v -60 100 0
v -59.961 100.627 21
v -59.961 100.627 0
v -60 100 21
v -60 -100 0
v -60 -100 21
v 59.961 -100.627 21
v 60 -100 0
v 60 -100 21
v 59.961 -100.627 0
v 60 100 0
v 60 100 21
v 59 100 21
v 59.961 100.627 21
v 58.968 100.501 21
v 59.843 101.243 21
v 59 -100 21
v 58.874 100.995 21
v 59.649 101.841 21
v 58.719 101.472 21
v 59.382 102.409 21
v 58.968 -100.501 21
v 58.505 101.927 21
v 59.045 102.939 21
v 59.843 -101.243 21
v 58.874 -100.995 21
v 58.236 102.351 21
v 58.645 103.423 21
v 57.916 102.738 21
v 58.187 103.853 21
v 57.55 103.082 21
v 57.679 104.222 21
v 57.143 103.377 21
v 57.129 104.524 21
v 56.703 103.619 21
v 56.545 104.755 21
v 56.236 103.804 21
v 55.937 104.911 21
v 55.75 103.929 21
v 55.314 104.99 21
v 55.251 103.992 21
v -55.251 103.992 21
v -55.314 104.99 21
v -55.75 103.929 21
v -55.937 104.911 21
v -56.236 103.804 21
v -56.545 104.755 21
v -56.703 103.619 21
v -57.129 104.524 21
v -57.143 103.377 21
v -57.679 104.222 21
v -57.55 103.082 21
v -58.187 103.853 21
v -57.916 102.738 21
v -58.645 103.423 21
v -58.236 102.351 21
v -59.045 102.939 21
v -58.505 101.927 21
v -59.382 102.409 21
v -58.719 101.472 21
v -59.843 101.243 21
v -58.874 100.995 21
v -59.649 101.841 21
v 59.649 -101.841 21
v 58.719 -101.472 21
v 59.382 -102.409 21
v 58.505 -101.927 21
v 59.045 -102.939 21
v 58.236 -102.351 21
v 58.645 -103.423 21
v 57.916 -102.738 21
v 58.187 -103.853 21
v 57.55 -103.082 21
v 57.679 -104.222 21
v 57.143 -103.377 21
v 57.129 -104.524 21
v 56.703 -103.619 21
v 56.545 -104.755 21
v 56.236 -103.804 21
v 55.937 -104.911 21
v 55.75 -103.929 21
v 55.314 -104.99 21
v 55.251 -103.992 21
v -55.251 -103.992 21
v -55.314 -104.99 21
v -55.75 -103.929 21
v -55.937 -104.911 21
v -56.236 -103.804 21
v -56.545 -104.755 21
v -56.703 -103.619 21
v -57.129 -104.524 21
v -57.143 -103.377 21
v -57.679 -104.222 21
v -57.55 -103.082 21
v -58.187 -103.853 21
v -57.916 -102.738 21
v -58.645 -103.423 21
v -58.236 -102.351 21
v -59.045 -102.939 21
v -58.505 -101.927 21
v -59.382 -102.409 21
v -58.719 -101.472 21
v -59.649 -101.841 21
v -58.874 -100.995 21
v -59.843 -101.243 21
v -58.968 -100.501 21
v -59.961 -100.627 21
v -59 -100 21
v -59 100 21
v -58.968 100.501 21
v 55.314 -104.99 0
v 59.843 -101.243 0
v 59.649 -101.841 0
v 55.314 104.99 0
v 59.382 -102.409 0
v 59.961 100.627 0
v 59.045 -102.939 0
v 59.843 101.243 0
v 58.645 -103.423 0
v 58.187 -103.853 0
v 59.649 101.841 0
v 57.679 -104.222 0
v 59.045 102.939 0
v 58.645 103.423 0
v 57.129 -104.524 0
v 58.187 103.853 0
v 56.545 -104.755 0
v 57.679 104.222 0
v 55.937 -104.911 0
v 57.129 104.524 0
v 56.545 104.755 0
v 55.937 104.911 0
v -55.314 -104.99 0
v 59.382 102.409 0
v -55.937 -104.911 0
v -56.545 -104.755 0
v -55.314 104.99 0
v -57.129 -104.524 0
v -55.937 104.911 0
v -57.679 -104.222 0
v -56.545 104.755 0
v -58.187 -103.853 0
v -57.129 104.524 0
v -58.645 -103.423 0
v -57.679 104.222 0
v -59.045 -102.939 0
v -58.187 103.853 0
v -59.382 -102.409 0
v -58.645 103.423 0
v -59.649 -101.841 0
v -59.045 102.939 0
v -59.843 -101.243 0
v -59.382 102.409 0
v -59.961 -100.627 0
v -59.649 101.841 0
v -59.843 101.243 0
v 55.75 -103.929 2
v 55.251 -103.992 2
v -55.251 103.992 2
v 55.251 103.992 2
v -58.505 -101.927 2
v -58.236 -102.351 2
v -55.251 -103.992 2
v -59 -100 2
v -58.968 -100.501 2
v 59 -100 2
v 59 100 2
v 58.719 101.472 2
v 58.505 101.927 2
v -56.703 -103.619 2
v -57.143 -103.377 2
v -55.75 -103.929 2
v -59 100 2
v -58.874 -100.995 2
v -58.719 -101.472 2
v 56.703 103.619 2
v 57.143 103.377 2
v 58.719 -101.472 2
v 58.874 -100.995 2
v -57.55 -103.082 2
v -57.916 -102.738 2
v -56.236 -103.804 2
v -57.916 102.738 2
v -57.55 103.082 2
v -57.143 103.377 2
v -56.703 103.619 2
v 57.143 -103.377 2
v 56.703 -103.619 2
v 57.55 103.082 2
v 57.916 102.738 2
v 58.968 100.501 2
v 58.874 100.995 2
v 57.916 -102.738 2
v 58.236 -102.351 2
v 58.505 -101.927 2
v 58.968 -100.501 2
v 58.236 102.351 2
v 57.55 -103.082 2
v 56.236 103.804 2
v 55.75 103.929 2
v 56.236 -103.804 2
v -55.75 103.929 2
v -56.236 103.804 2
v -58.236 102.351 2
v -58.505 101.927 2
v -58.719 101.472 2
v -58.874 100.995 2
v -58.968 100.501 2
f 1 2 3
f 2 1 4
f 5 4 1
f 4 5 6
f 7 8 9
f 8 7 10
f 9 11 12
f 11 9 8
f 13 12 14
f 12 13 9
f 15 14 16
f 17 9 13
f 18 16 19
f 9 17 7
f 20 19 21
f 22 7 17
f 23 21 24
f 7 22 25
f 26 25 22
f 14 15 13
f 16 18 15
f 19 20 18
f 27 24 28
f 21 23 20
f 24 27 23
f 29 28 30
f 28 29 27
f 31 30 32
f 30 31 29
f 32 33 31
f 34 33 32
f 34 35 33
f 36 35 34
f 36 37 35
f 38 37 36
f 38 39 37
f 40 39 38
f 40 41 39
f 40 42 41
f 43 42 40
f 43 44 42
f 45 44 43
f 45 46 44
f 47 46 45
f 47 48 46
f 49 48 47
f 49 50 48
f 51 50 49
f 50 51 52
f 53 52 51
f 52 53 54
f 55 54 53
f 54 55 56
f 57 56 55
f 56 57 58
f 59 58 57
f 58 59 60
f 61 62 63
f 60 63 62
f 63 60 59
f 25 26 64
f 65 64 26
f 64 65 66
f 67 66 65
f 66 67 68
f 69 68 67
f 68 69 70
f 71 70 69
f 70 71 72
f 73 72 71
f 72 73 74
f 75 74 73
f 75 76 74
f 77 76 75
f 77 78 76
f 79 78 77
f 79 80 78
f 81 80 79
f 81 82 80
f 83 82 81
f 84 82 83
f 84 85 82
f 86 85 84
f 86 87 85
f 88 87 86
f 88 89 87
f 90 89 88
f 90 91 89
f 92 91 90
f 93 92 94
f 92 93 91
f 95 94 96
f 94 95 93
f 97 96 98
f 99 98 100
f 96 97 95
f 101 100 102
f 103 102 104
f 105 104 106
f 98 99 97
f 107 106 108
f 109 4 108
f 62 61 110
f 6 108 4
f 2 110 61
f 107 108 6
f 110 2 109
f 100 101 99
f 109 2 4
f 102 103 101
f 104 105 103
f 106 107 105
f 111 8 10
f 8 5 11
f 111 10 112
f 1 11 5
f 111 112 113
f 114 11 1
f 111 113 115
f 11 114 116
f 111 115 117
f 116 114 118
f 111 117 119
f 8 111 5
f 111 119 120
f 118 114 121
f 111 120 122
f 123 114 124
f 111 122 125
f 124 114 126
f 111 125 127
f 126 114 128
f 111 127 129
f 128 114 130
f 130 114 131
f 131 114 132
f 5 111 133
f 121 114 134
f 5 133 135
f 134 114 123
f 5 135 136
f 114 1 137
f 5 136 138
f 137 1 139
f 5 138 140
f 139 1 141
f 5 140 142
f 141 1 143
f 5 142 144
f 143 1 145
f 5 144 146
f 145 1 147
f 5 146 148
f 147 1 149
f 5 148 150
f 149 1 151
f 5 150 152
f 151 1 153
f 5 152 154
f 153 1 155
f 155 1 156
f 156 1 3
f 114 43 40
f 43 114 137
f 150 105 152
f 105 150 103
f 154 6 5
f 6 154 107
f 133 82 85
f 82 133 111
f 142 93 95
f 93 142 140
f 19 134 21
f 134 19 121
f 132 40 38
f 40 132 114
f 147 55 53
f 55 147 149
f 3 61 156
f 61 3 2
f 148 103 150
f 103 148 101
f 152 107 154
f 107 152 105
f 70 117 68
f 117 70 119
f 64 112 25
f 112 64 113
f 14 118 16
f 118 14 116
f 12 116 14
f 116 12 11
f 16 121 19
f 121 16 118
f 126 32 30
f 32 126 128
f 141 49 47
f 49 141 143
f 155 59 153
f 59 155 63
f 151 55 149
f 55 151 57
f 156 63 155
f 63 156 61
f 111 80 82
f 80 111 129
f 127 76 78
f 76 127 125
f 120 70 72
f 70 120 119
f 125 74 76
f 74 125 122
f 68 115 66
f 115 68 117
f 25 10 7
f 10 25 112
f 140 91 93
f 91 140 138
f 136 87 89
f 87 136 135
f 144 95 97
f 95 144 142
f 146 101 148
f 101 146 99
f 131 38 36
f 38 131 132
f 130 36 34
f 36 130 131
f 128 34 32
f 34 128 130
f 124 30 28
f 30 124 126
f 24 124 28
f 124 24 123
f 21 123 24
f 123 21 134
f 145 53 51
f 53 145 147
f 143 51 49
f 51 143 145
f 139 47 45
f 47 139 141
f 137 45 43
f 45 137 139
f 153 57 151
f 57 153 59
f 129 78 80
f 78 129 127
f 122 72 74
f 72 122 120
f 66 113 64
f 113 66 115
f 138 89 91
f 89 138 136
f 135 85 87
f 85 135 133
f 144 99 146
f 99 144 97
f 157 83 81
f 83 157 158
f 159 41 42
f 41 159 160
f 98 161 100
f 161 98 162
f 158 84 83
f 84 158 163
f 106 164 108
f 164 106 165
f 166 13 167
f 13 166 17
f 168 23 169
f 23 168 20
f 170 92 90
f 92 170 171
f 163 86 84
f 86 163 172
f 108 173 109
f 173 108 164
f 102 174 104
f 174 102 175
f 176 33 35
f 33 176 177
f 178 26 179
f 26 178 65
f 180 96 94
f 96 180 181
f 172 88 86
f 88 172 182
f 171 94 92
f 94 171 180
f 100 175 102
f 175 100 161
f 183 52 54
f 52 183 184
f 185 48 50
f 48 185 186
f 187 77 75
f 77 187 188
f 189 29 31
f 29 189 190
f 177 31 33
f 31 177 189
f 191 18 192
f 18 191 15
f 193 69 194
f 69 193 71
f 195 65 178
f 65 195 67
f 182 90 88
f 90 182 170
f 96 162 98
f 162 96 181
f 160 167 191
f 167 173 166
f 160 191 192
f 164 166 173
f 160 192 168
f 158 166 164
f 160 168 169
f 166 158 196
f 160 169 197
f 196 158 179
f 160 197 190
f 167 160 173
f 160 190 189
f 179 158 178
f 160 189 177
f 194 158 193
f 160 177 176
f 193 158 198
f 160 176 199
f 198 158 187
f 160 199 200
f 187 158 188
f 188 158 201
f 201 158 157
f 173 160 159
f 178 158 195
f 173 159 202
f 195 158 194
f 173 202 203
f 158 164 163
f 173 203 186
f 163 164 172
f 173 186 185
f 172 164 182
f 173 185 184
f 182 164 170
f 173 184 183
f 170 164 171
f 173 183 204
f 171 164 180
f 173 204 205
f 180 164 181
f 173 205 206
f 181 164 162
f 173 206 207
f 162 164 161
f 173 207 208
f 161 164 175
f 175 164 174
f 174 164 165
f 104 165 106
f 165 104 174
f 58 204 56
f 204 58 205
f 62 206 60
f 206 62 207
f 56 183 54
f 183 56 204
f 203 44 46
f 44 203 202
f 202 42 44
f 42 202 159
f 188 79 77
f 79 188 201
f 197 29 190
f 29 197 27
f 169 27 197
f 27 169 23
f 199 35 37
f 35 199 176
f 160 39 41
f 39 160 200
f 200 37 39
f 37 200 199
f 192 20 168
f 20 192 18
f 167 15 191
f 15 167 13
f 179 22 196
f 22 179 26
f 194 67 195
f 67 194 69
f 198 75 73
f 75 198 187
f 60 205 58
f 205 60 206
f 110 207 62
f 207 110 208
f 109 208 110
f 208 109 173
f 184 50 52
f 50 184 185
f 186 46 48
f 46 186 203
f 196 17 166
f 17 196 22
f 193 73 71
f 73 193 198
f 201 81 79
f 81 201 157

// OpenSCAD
$fn = 50;


difference() {
	union() {
		hull() {
			translate(v = [-55.0000000000, 100.0000000000, 0]) {
				cylinder(h = 21, r = 5);
			}
			translate(v = [55.0000000000, 100.0000000000, 0]) {
				cylinder(h = 21, r = 5);
			}
			translate(v = [-55.0000000000, -100.0000000000, 0]) {
				cylinder(h = 21, r = 5);
			}
			translate(v = [55.0000000000, -100.0000000000, 0]) {
				cylinder(h = 21, r = 5);
			}
		}
	}
	union() {
		translate(v = [0, 0, 2]) {
			hull() {
				translate(v = [-55.0000000000, 100.0000000000, 0]) {
					cylinder(h = 19, r = 4);
				}
				translate(v = [55.0000000000, 100.0000000000, 0]) {
					cylinder(h = 19, r = 4);
				}
				translate(v = [-55.0000000000, -100.0000000000, 0]) {
					cylinder(h = 19, r = 4);
				}
				translate(v = [55.0000000000, -100.0000000000, 0]) {
					cylinder(h = 19, r = 4);
				}
			}
		}
	}
}
